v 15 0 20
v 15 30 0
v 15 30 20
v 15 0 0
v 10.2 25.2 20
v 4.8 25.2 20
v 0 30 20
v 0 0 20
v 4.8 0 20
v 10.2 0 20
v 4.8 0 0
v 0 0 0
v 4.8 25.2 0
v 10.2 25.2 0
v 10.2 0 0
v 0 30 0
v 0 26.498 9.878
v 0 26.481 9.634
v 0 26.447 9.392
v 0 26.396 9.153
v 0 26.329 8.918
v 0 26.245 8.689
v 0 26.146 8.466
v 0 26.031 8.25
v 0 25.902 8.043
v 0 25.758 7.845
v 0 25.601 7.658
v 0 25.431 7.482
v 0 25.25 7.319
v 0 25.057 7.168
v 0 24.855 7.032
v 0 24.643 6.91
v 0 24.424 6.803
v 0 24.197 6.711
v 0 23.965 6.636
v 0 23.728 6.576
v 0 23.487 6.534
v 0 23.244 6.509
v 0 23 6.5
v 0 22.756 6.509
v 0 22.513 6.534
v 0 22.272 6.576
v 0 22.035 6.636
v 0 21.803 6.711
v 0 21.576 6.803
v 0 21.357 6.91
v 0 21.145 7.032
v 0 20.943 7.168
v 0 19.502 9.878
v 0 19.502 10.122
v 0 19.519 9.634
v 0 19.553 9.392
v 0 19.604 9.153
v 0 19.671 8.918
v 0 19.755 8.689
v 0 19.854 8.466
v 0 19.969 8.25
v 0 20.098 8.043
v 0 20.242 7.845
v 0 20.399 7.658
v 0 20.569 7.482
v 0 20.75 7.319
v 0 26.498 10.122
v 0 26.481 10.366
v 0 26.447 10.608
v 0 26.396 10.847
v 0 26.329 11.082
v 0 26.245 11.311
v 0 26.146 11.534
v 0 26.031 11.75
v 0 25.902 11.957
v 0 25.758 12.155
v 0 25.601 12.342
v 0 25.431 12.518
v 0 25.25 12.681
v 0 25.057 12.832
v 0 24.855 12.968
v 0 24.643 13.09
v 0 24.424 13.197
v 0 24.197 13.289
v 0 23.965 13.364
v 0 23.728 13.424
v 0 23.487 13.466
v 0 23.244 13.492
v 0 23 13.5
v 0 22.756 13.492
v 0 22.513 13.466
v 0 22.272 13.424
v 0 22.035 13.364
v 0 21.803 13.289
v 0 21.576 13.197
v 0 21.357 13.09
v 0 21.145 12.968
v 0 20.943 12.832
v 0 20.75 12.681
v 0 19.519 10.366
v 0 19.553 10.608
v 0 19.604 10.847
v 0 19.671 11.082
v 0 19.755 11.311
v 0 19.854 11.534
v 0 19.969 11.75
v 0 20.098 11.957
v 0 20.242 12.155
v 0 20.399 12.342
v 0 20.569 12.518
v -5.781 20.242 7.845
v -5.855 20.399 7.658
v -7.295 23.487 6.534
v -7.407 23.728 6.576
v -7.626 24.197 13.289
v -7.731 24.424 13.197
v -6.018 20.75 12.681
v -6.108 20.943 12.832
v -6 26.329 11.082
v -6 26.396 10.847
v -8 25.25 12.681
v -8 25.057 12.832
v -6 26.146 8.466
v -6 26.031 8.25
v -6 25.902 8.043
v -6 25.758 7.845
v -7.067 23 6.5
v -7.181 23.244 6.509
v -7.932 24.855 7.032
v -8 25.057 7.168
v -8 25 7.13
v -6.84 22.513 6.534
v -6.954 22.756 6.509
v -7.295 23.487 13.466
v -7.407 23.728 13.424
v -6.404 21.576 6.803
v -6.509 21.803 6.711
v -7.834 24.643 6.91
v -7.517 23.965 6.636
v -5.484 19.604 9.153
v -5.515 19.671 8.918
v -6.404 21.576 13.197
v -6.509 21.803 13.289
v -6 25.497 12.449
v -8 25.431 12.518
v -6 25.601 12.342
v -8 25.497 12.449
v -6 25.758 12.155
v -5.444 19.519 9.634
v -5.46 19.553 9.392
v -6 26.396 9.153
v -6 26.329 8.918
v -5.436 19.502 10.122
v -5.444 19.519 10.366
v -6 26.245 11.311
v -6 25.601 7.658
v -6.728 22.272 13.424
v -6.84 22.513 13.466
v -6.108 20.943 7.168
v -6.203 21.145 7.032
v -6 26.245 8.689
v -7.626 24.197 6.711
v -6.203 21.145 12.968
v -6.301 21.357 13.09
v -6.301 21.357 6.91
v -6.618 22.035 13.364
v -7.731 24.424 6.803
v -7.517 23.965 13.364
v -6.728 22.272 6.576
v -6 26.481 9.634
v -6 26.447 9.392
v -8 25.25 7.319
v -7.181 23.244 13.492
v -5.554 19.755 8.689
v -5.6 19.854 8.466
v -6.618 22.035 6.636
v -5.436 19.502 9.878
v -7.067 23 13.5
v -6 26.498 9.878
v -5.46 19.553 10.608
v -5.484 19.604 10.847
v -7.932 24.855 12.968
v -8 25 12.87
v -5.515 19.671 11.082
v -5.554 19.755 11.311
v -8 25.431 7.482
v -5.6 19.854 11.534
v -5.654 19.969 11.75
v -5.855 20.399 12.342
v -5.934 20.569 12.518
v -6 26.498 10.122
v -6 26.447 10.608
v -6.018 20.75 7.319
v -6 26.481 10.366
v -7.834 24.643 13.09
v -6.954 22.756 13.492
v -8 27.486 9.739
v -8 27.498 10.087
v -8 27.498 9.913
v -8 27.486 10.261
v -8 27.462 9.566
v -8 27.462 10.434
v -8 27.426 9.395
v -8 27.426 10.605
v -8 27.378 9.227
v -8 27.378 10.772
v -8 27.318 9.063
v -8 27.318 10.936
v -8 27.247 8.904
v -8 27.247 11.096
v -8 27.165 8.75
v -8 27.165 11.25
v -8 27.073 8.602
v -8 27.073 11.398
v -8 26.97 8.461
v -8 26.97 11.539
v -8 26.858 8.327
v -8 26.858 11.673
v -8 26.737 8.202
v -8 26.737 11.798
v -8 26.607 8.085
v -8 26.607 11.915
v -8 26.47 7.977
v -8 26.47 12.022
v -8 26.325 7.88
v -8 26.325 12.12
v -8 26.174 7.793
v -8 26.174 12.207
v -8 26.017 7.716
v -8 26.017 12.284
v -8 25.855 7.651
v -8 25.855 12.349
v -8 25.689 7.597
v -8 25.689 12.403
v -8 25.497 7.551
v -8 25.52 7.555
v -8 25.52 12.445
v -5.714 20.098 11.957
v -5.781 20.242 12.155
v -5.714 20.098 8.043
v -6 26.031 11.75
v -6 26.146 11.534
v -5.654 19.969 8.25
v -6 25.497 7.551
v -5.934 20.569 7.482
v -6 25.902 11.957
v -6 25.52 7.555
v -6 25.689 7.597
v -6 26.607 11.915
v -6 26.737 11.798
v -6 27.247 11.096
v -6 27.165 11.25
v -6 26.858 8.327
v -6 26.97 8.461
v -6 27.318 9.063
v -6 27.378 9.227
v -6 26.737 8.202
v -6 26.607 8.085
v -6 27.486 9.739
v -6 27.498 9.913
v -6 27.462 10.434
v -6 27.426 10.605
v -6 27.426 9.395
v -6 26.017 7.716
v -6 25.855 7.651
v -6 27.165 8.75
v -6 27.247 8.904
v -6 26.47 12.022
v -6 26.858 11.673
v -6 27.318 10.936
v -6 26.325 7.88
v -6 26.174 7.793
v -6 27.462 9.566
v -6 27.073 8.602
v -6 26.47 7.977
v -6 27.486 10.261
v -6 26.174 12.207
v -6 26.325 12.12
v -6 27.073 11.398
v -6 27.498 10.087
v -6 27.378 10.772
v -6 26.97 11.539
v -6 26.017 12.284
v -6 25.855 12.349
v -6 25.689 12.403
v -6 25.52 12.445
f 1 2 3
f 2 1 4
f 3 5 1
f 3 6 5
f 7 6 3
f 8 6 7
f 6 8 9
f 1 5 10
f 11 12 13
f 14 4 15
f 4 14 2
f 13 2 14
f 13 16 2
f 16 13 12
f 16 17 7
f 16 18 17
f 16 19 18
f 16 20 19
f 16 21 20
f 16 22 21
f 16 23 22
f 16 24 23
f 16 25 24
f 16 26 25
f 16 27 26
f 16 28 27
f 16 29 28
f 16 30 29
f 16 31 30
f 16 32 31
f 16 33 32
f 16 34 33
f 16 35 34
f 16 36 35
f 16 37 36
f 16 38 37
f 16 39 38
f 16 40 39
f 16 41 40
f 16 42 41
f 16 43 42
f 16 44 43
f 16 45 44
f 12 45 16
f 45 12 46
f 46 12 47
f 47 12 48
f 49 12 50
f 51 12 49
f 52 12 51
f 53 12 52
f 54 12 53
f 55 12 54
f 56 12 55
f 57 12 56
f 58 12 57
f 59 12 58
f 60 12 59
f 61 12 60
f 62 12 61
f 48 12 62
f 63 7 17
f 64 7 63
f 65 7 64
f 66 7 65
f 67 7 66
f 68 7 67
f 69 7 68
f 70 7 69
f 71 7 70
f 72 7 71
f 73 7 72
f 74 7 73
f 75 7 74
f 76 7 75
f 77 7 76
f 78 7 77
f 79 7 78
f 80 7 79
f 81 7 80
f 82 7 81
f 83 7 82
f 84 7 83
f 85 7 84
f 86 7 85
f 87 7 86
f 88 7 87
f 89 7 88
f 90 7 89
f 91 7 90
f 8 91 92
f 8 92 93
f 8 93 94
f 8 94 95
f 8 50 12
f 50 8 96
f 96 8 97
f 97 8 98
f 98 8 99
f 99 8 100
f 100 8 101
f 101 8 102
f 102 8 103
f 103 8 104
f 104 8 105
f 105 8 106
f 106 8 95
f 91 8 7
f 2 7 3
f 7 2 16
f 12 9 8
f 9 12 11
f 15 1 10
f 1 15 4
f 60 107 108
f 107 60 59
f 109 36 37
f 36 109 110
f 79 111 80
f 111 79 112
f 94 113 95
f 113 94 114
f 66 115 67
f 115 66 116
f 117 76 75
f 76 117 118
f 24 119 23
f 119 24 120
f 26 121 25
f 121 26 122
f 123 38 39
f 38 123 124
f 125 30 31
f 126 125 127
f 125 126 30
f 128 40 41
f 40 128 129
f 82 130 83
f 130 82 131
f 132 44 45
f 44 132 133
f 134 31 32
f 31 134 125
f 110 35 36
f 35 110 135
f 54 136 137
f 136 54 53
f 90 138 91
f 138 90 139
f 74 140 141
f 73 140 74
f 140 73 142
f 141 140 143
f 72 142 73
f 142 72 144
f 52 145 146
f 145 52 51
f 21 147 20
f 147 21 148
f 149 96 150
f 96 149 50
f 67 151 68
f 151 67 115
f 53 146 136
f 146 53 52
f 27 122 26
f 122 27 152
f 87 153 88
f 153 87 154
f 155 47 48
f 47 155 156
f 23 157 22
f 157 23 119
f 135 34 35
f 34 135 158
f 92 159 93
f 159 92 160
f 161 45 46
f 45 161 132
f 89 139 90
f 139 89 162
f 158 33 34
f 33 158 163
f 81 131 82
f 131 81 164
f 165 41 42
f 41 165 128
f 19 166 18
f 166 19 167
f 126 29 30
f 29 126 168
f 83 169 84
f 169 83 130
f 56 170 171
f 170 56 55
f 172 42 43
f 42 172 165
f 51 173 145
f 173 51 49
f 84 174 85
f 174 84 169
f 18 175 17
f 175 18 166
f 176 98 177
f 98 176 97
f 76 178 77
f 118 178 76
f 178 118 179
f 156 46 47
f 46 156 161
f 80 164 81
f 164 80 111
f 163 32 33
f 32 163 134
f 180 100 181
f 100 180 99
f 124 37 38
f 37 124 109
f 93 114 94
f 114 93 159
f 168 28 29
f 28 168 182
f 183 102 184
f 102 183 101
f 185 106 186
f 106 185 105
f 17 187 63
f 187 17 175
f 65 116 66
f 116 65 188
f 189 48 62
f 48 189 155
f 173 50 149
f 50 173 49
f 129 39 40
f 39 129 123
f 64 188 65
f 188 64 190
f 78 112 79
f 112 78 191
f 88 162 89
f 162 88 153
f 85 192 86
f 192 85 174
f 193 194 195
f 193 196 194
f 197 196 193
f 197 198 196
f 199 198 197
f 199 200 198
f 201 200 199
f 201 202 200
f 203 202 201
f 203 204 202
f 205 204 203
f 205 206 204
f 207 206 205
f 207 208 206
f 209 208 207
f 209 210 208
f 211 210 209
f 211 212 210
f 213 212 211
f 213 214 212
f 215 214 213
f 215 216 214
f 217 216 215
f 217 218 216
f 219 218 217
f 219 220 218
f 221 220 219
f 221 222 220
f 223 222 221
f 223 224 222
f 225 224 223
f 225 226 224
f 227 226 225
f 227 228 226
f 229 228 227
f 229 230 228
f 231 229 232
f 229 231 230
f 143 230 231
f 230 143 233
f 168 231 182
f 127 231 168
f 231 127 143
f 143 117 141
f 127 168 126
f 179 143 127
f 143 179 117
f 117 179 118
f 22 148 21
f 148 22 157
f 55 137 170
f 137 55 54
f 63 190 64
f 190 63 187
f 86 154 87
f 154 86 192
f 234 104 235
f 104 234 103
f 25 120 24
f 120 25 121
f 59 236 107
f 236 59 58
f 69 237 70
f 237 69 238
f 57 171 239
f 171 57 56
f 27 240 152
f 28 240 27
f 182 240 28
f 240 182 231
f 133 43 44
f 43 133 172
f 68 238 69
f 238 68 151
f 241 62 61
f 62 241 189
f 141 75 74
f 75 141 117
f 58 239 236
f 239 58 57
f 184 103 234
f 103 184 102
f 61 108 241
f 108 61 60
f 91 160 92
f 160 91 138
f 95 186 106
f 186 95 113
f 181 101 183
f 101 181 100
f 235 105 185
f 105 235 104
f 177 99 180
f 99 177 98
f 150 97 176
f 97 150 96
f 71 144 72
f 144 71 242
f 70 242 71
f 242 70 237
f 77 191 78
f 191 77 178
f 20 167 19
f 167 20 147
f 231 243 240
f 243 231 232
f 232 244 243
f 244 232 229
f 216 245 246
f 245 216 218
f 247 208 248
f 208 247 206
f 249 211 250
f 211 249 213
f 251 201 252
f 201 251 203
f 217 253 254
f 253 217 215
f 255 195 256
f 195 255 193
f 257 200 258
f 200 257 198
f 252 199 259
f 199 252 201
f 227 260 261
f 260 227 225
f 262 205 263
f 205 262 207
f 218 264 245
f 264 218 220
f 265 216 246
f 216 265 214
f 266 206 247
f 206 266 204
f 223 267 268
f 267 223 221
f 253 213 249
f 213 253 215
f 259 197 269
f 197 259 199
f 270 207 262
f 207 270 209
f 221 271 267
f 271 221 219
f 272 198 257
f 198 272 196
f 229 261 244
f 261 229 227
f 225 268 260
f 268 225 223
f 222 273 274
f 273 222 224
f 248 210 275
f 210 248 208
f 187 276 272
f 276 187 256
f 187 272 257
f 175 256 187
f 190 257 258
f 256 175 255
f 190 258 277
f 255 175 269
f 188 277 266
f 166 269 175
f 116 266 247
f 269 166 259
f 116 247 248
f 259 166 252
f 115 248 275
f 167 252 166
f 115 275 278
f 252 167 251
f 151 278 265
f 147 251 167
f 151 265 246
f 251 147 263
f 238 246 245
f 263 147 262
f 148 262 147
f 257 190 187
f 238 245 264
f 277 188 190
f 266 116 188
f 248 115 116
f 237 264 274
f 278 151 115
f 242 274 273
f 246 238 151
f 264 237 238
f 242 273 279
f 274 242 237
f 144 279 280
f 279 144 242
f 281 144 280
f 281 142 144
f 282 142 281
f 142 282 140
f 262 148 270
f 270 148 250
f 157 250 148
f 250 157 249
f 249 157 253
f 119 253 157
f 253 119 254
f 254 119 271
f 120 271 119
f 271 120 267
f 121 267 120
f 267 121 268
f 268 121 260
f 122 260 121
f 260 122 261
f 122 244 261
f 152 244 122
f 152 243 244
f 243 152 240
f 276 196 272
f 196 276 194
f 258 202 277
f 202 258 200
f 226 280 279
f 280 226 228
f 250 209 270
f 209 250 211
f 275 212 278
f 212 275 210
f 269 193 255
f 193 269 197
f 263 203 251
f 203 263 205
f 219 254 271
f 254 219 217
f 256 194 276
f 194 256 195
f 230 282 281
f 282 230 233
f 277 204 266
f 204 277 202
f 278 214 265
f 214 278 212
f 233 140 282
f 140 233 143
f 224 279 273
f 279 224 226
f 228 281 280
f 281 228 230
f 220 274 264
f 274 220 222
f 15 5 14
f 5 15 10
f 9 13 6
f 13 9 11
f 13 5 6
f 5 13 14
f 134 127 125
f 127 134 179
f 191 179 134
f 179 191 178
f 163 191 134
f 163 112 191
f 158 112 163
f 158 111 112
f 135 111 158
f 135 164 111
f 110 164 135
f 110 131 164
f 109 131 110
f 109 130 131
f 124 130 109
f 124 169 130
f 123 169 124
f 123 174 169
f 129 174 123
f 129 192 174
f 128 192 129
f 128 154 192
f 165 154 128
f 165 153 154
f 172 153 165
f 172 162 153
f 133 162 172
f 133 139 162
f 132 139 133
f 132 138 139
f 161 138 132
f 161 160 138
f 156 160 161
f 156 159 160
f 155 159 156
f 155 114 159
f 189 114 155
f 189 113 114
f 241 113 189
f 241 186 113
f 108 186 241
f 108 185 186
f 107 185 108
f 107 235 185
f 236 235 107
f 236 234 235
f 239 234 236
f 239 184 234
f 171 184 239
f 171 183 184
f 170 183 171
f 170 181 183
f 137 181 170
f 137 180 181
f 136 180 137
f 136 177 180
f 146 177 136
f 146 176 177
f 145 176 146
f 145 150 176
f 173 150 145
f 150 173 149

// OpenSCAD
$fn = 90;
xov = 0.0002; // overlap of some parts to prevent openscad from leaving "infinitly" thin walls

h_d = 7;
h_l = 8;
h_t = 2;

c_w = 20;
c_h = 30;
c_d = 15;
c_c = 5.4;

s_a = 65;

difference() {
    union() {
        cube([c_d, c_h, c_w]);
        translate([-h_l, c_h - h_d, c_w / 2]) rotate([0, 90, 0]) cylinder(d = h_d, h = h_l);
        translate([-h_l, c_h - h_d + h_t, c_w / 2]) rotate([0, 90, 0]) cylinder(d = h_d - h_t, h = h_t);
    }
    translate([(c_d - c_c) / 2, 0, 0]) cube([c_c, c_h - (c_d - c_c) / 2, c_w]);
    translate([-(h_l) - h_d * sin(s_a), (c_h - h_d + h_t) - h_d * sin(90 - s_a), 0]) rotate([0, 0, -s_a]) cube([h_d, h_d, c_w]);
}
